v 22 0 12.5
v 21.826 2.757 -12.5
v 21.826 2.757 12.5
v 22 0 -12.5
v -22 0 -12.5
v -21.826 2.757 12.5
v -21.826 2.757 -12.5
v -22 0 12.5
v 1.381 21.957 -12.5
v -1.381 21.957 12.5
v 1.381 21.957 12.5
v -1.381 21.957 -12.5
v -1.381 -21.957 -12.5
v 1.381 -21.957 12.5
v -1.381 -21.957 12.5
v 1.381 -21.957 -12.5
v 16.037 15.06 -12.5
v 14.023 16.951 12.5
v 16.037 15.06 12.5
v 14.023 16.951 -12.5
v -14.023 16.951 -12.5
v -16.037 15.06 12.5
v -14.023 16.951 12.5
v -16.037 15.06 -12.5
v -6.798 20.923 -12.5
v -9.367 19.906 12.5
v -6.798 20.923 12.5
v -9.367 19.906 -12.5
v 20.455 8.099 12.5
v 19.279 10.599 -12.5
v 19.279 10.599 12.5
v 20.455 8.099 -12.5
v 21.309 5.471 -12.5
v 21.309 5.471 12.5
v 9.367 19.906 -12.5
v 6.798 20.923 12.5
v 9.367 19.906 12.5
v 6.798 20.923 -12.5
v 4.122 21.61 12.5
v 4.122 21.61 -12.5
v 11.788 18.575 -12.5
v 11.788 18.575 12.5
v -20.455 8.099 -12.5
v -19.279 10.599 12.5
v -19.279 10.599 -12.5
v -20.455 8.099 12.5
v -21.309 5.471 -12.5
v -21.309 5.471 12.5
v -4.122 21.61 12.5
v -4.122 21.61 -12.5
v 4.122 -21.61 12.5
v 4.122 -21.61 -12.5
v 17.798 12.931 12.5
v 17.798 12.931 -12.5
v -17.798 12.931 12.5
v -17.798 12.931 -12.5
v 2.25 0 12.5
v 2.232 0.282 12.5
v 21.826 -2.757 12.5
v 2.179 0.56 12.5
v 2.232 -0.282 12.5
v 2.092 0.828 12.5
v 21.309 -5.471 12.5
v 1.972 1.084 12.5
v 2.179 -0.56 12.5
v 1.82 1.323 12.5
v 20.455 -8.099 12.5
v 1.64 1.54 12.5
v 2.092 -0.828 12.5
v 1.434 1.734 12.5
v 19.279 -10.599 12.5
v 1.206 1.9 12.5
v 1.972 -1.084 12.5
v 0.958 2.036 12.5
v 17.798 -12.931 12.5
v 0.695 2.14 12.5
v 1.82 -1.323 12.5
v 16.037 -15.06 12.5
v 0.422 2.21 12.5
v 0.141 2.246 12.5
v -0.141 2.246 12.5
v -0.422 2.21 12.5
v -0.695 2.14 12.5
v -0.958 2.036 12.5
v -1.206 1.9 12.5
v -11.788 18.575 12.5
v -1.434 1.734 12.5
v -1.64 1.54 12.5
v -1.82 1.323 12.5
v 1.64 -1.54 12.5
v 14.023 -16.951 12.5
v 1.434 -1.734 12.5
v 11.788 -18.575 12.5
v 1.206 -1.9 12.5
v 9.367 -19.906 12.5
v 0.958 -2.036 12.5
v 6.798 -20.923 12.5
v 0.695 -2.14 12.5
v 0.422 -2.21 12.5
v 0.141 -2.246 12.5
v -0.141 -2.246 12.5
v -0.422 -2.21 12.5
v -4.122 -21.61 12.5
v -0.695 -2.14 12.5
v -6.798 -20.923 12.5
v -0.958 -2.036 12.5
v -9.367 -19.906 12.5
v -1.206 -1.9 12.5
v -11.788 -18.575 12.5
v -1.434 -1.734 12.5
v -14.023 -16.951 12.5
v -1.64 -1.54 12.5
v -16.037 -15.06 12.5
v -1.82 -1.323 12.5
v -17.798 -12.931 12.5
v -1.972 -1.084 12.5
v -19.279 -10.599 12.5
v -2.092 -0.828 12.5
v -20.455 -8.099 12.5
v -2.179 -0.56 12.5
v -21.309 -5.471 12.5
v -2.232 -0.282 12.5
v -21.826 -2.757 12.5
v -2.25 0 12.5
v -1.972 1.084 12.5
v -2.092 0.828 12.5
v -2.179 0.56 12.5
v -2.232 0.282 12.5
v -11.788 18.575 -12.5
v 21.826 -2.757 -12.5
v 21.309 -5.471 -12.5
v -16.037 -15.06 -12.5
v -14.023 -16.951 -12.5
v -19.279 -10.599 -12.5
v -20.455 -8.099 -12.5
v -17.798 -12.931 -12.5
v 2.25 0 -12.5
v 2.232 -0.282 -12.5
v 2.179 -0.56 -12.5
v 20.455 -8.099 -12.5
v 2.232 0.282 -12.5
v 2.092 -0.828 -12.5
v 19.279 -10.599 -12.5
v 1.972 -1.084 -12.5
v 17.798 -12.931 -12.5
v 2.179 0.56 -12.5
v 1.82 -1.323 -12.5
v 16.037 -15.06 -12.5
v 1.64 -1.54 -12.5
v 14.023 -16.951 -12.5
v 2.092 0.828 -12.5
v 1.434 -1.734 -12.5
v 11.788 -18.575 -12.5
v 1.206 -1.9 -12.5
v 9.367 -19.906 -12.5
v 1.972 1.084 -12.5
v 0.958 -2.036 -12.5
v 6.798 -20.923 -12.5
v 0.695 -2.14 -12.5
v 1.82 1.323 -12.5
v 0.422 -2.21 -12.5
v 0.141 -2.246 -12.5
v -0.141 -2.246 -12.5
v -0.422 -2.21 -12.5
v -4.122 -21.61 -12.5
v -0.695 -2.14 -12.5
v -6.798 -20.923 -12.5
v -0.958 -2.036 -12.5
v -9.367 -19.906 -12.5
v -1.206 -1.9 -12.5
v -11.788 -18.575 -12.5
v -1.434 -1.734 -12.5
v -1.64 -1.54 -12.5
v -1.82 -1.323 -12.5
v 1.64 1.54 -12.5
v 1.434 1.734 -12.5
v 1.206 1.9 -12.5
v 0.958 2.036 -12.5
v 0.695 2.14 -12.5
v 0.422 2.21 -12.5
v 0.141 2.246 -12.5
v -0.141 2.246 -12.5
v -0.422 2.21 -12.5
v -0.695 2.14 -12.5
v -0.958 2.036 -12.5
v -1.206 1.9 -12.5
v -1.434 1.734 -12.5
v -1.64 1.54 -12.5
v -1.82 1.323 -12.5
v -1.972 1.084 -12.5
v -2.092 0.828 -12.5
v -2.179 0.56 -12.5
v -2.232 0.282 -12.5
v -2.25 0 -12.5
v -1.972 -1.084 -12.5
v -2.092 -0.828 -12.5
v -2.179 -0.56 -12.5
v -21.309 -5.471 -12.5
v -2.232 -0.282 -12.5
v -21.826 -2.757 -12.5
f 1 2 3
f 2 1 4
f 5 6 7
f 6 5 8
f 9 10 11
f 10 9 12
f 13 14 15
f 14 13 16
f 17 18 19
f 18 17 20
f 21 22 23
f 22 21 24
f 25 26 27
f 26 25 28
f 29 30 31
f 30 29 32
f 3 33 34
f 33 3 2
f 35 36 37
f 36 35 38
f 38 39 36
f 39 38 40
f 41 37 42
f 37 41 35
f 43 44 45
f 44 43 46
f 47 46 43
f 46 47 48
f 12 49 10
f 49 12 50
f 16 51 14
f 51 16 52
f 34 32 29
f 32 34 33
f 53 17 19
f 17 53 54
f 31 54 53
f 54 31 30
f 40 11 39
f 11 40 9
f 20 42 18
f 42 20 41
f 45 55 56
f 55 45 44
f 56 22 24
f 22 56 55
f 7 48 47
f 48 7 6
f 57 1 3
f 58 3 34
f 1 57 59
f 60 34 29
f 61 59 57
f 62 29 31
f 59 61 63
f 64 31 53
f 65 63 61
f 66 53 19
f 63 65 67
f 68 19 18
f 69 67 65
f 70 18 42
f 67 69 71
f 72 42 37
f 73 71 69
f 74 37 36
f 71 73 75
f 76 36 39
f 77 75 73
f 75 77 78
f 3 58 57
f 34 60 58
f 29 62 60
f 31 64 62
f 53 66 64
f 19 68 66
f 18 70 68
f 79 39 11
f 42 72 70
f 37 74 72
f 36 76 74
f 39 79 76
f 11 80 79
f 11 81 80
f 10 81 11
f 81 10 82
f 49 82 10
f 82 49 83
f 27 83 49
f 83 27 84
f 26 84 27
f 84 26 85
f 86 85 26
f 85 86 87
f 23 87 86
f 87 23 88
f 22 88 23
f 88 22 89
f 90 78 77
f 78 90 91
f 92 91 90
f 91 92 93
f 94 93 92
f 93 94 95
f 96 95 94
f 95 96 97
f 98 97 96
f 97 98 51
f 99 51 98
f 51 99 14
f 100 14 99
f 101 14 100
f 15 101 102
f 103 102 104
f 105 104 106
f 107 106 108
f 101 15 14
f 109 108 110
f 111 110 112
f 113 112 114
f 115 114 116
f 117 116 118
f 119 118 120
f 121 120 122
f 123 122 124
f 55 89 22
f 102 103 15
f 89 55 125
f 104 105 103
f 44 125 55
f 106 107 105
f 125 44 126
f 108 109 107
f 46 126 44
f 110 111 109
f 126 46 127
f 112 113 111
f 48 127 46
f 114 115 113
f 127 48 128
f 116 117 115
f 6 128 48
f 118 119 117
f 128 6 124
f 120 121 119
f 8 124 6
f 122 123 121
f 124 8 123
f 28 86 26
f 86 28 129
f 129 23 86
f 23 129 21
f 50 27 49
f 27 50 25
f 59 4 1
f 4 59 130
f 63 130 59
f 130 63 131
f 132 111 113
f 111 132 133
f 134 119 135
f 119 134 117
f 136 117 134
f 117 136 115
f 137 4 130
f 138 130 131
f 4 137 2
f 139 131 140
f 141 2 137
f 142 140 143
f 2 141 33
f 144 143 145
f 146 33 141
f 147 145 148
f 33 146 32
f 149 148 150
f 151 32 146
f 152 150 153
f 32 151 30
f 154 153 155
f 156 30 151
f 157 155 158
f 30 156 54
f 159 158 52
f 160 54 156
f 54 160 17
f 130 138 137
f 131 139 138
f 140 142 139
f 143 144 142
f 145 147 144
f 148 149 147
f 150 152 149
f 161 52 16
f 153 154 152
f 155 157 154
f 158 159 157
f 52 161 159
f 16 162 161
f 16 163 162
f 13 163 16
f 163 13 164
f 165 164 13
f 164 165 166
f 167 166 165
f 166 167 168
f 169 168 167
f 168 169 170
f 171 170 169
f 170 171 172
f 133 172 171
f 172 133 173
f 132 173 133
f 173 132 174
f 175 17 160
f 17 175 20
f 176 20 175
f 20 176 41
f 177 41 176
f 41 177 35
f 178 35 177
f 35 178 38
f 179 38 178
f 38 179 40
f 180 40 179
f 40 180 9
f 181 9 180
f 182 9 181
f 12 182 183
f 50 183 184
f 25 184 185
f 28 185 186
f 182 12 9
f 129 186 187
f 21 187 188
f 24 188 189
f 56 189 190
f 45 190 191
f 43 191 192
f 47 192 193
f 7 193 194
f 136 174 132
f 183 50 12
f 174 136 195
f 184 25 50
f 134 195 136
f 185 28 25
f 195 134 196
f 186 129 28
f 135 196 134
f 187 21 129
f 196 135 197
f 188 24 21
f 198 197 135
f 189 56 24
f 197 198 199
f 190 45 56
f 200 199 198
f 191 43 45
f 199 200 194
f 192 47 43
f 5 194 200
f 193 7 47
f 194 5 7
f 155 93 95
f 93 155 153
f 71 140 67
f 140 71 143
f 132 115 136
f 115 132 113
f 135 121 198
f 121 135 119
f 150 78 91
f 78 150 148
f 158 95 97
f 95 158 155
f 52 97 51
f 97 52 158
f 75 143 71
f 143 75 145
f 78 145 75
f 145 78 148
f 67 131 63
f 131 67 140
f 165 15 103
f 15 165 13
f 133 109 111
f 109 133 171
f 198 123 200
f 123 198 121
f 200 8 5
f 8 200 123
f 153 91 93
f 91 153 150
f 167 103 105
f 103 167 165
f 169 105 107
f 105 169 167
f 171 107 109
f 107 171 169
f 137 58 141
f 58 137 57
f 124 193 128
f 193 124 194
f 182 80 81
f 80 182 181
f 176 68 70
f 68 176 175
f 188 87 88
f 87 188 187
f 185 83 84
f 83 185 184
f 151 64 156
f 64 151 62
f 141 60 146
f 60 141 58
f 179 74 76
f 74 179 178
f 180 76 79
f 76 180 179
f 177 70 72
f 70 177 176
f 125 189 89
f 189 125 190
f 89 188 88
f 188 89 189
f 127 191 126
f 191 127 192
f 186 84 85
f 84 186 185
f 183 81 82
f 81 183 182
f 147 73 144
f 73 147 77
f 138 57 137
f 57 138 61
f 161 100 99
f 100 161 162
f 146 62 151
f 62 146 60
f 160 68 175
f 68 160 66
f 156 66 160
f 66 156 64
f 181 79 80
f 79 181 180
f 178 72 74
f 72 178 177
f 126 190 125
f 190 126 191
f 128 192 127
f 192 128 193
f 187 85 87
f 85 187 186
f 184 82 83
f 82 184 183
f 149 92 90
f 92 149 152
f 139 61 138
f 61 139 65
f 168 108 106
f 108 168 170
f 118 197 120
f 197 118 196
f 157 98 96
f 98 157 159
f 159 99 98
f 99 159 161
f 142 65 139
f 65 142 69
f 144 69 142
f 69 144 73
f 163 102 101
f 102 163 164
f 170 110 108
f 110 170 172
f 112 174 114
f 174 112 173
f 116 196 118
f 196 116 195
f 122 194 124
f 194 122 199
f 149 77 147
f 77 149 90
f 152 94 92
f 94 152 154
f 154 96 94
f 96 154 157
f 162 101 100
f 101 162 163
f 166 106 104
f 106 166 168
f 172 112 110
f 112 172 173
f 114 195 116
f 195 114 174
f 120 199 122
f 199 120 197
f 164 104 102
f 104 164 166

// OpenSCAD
$fn = 50;


difference() {
	union() {
		translate(v = [0, 0, -12.5000000000]) {
			cylinder(h = 25, r = 22.0000000000);
		}
	}
	union() {
		translate(v = [0, 0, -100.0000000000]) {
			cylinder(h = 200, r = 2.2500000000);
		}
	}
}
